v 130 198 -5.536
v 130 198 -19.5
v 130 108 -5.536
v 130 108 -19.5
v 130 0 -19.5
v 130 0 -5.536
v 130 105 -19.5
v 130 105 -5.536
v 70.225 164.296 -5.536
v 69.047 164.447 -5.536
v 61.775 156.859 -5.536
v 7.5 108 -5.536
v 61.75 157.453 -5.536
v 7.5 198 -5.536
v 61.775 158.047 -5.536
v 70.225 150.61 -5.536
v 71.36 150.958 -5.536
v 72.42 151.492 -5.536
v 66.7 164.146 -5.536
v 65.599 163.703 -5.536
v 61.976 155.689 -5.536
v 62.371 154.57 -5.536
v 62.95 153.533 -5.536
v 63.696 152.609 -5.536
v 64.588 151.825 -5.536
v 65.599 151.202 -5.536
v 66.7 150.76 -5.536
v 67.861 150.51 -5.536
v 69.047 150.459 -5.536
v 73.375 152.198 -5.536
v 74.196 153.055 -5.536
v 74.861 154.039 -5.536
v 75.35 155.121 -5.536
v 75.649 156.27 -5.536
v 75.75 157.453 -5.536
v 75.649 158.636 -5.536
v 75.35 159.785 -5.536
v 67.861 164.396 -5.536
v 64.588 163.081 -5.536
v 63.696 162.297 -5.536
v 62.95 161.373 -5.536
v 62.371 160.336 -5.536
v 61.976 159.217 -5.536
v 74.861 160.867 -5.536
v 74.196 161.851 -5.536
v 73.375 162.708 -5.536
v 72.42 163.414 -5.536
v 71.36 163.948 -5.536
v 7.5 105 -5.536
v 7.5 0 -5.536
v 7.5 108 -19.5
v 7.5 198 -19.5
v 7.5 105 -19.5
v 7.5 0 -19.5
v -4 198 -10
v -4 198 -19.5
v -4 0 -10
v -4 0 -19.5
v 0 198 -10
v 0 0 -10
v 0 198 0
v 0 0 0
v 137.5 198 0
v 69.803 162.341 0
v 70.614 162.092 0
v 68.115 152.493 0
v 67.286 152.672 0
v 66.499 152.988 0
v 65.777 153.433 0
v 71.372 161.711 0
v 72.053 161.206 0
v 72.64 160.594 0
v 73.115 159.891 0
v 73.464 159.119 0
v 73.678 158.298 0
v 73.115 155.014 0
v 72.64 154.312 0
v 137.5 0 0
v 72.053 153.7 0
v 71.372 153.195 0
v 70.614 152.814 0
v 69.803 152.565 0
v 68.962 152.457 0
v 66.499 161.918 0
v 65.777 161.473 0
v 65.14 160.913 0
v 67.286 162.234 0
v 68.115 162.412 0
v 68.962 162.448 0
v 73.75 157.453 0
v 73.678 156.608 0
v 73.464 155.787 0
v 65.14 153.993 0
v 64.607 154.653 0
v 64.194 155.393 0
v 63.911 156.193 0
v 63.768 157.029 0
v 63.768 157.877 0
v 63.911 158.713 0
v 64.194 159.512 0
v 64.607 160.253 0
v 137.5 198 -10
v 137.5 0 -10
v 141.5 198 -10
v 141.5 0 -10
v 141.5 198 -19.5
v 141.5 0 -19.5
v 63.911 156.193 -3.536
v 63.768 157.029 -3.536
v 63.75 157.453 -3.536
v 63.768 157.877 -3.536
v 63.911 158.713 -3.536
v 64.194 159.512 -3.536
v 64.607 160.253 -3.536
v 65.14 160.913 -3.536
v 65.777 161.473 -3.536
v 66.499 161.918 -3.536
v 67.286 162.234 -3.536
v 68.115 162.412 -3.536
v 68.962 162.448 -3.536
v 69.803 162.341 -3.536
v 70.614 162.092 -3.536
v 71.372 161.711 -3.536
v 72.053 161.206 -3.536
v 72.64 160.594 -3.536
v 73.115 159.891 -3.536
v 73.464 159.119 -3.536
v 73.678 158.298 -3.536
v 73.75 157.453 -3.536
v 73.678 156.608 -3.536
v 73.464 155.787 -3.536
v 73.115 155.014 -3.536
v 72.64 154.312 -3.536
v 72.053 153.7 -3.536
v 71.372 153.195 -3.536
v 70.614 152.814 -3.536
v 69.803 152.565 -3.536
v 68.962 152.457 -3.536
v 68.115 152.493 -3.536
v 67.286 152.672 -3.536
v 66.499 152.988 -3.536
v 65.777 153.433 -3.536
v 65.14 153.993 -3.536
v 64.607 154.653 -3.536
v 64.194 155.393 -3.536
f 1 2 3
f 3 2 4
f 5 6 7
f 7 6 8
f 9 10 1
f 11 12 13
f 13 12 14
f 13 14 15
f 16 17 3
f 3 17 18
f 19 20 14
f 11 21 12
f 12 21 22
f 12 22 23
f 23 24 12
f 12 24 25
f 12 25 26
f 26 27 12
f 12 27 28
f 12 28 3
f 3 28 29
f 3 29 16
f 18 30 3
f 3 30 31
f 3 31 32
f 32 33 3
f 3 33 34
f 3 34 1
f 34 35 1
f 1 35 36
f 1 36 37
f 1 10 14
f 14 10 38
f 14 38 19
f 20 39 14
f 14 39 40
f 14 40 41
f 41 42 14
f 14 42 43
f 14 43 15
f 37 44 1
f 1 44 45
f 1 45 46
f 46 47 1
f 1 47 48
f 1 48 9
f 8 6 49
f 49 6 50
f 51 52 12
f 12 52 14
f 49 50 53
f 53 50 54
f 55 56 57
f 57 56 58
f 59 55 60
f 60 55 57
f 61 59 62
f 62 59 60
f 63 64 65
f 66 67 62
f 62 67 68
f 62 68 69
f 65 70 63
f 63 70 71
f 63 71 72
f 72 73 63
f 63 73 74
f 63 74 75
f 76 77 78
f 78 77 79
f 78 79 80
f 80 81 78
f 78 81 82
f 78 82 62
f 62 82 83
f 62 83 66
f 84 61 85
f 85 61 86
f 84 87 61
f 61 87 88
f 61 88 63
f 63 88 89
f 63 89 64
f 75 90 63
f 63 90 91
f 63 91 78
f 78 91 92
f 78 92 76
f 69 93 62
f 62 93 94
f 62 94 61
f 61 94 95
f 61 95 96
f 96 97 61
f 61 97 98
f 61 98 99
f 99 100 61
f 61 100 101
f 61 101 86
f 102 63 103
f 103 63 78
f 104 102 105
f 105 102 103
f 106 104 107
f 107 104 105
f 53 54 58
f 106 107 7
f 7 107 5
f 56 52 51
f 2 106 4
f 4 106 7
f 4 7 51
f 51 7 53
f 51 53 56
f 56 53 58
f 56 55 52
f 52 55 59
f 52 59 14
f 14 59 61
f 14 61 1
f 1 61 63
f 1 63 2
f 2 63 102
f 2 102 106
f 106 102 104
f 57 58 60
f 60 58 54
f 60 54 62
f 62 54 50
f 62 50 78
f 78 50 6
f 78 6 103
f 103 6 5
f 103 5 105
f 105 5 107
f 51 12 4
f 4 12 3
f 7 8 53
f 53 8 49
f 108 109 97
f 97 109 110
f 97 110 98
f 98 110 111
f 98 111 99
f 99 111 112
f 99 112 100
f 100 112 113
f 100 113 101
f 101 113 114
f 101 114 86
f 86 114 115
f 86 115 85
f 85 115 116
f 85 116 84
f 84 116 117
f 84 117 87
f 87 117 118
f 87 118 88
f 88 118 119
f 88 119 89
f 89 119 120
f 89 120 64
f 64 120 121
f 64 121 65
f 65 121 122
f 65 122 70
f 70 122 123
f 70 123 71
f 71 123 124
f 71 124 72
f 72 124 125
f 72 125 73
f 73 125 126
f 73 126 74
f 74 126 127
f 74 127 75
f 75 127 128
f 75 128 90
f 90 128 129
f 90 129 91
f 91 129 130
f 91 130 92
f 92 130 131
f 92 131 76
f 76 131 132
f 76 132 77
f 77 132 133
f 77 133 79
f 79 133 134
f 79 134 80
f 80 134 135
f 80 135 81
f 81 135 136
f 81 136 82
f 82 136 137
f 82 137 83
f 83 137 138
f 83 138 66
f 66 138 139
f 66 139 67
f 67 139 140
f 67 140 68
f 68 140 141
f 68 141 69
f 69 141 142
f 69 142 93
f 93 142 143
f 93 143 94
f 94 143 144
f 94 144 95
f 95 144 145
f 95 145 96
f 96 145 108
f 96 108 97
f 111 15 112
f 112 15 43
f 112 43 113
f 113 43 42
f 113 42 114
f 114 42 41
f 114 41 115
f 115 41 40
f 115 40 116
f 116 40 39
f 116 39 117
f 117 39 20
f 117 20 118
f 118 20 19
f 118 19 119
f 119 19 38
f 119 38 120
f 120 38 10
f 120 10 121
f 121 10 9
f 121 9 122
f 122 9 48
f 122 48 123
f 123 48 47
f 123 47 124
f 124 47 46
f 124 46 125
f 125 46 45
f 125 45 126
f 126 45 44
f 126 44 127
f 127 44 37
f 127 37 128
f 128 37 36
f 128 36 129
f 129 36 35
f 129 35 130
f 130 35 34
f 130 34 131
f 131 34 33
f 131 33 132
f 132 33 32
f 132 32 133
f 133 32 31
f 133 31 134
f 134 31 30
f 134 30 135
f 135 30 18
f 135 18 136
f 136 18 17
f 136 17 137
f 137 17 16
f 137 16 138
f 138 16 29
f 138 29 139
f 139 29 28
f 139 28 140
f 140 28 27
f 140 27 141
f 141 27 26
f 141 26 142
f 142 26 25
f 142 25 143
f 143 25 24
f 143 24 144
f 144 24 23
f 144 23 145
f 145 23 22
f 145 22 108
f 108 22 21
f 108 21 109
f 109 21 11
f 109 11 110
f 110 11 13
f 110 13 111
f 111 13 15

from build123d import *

# Parameters (mm, degrees)
SALIENTE_EXTRUIR4_DEPTH = 198
CROQUIS2_W              = 122.5
CROQUIS2_H              = 3
SALIENTE_EXTRUIR5_DEPTH = 13.963851332
CROQUIS3_R              = 5
CORTAR_EXTRUIR1_DEPTH   = 10
CHAFL_N2_SIZE           = 2


with BuildPart() as part:
    # Croquis1 → Saliente-Extruir4 (new body)
    with BuildSketch(Plane(origin=(0, 0, 0), x_dir=(1, 0, 0), z_dir=(0, 1, 0))):
        Polygon((-4, 10), (-4, 19.5), (7.5, 19.5), (7.5, 5.536148668), (130, 5.536148668), (130, 19.5), (141.5, 19.5), (141.5, 10), (137.5, 10), (137.5, 0), (0, 0), (0, 10), align=None)
    extrude(amount=SALIENTE_EXTRUIR4_DEPTH)

    # Croquis2 → Saliente-Extruir5 (add)
    with BuildSketch(Plane(origin=(0, 0, -5.536148668), x_dir=(-1, 0, 0), z_dir=(0, 0, -1))):
        with Locations((-68.75, 106.5)):
            Rectangle(CROQUIS2_W, CROQUIS2_H)
    extrude(amount=SALIENTE_EXTRUIR5_DEPTH)

    # Croquis3 → Cortar-Extruir1 (cut)
    with BuildSketch(Plane.XY):
        with Locations((68.75, 157.45296568)):
            Circle(CROQUIS3_R)
    extrude(amount=-CORTAR_EXTRUIR1_DEPTH, mode=Mode.SUBTRACT)

    # Chaflán2
    chafl_n2_edges = [part.edges().sort_by_distance(p)[0] for p in [
        (63.75, 157.45296568, -5.536148668),
    ]]
    chamfer(chafl_n2_edges, length=CHAFL_N2_SIZE)


solid = part.part
